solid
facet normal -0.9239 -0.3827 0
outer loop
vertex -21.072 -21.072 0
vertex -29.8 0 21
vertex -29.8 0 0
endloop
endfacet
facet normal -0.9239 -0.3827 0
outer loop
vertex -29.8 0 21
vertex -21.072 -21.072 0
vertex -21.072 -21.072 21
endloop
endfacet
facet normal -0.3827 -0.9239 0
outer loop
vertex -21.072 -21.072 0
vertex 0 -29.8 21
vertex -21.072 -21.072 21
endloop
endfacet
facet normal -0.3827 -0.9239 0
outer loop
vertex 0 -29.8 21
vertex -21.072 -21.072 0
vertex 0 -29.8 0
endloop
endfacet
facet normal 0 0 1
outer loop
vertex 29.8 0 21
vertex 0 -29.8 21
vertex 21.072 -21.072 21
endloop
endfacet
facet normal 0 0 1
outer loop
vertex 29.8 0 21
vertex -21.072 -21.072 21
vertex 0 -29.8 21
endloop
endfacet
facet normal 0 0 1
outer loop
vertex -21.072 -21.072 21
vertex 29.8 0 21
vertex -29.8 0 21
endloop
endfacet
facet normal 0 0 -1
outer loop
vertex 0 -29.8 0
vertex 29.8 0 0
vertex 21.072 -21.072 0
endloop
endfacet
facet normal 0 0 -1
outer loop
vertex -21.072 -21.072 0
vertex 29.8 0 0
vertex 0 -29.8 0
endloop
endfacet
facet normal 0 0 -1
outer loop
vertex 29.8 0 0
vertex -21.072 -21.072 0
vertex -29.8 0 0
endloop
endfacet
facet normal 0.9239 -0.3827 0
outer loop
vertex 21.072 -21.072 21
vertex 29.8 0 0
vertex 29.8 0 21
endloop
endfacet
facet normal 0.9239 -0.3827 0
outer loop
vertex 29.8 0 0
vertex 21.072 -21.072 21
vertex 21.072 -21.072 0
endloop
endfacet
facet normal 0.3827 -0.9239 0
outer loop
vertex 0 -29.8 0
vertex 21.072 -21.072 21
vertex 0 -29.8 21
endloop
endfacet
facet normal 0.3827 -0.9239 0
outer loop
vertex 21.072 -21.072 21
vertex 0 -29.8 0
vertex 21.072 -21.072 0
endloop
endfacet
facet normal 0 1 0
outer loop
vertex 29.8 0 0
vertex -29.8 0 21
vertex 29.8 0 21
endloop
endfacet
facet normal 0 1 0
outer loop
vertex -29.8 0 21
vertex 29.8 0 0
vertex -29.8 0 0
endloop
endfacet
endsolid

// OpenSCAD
// dicetower_plug.scad

// unit is mm

difference() {

  cylinder(d=60 - 0.2 * 2, h=21, $fn=8);
  translate([ -35, 0, -3 ]) cube(size=[ 70, 35, 55 ]);
}
